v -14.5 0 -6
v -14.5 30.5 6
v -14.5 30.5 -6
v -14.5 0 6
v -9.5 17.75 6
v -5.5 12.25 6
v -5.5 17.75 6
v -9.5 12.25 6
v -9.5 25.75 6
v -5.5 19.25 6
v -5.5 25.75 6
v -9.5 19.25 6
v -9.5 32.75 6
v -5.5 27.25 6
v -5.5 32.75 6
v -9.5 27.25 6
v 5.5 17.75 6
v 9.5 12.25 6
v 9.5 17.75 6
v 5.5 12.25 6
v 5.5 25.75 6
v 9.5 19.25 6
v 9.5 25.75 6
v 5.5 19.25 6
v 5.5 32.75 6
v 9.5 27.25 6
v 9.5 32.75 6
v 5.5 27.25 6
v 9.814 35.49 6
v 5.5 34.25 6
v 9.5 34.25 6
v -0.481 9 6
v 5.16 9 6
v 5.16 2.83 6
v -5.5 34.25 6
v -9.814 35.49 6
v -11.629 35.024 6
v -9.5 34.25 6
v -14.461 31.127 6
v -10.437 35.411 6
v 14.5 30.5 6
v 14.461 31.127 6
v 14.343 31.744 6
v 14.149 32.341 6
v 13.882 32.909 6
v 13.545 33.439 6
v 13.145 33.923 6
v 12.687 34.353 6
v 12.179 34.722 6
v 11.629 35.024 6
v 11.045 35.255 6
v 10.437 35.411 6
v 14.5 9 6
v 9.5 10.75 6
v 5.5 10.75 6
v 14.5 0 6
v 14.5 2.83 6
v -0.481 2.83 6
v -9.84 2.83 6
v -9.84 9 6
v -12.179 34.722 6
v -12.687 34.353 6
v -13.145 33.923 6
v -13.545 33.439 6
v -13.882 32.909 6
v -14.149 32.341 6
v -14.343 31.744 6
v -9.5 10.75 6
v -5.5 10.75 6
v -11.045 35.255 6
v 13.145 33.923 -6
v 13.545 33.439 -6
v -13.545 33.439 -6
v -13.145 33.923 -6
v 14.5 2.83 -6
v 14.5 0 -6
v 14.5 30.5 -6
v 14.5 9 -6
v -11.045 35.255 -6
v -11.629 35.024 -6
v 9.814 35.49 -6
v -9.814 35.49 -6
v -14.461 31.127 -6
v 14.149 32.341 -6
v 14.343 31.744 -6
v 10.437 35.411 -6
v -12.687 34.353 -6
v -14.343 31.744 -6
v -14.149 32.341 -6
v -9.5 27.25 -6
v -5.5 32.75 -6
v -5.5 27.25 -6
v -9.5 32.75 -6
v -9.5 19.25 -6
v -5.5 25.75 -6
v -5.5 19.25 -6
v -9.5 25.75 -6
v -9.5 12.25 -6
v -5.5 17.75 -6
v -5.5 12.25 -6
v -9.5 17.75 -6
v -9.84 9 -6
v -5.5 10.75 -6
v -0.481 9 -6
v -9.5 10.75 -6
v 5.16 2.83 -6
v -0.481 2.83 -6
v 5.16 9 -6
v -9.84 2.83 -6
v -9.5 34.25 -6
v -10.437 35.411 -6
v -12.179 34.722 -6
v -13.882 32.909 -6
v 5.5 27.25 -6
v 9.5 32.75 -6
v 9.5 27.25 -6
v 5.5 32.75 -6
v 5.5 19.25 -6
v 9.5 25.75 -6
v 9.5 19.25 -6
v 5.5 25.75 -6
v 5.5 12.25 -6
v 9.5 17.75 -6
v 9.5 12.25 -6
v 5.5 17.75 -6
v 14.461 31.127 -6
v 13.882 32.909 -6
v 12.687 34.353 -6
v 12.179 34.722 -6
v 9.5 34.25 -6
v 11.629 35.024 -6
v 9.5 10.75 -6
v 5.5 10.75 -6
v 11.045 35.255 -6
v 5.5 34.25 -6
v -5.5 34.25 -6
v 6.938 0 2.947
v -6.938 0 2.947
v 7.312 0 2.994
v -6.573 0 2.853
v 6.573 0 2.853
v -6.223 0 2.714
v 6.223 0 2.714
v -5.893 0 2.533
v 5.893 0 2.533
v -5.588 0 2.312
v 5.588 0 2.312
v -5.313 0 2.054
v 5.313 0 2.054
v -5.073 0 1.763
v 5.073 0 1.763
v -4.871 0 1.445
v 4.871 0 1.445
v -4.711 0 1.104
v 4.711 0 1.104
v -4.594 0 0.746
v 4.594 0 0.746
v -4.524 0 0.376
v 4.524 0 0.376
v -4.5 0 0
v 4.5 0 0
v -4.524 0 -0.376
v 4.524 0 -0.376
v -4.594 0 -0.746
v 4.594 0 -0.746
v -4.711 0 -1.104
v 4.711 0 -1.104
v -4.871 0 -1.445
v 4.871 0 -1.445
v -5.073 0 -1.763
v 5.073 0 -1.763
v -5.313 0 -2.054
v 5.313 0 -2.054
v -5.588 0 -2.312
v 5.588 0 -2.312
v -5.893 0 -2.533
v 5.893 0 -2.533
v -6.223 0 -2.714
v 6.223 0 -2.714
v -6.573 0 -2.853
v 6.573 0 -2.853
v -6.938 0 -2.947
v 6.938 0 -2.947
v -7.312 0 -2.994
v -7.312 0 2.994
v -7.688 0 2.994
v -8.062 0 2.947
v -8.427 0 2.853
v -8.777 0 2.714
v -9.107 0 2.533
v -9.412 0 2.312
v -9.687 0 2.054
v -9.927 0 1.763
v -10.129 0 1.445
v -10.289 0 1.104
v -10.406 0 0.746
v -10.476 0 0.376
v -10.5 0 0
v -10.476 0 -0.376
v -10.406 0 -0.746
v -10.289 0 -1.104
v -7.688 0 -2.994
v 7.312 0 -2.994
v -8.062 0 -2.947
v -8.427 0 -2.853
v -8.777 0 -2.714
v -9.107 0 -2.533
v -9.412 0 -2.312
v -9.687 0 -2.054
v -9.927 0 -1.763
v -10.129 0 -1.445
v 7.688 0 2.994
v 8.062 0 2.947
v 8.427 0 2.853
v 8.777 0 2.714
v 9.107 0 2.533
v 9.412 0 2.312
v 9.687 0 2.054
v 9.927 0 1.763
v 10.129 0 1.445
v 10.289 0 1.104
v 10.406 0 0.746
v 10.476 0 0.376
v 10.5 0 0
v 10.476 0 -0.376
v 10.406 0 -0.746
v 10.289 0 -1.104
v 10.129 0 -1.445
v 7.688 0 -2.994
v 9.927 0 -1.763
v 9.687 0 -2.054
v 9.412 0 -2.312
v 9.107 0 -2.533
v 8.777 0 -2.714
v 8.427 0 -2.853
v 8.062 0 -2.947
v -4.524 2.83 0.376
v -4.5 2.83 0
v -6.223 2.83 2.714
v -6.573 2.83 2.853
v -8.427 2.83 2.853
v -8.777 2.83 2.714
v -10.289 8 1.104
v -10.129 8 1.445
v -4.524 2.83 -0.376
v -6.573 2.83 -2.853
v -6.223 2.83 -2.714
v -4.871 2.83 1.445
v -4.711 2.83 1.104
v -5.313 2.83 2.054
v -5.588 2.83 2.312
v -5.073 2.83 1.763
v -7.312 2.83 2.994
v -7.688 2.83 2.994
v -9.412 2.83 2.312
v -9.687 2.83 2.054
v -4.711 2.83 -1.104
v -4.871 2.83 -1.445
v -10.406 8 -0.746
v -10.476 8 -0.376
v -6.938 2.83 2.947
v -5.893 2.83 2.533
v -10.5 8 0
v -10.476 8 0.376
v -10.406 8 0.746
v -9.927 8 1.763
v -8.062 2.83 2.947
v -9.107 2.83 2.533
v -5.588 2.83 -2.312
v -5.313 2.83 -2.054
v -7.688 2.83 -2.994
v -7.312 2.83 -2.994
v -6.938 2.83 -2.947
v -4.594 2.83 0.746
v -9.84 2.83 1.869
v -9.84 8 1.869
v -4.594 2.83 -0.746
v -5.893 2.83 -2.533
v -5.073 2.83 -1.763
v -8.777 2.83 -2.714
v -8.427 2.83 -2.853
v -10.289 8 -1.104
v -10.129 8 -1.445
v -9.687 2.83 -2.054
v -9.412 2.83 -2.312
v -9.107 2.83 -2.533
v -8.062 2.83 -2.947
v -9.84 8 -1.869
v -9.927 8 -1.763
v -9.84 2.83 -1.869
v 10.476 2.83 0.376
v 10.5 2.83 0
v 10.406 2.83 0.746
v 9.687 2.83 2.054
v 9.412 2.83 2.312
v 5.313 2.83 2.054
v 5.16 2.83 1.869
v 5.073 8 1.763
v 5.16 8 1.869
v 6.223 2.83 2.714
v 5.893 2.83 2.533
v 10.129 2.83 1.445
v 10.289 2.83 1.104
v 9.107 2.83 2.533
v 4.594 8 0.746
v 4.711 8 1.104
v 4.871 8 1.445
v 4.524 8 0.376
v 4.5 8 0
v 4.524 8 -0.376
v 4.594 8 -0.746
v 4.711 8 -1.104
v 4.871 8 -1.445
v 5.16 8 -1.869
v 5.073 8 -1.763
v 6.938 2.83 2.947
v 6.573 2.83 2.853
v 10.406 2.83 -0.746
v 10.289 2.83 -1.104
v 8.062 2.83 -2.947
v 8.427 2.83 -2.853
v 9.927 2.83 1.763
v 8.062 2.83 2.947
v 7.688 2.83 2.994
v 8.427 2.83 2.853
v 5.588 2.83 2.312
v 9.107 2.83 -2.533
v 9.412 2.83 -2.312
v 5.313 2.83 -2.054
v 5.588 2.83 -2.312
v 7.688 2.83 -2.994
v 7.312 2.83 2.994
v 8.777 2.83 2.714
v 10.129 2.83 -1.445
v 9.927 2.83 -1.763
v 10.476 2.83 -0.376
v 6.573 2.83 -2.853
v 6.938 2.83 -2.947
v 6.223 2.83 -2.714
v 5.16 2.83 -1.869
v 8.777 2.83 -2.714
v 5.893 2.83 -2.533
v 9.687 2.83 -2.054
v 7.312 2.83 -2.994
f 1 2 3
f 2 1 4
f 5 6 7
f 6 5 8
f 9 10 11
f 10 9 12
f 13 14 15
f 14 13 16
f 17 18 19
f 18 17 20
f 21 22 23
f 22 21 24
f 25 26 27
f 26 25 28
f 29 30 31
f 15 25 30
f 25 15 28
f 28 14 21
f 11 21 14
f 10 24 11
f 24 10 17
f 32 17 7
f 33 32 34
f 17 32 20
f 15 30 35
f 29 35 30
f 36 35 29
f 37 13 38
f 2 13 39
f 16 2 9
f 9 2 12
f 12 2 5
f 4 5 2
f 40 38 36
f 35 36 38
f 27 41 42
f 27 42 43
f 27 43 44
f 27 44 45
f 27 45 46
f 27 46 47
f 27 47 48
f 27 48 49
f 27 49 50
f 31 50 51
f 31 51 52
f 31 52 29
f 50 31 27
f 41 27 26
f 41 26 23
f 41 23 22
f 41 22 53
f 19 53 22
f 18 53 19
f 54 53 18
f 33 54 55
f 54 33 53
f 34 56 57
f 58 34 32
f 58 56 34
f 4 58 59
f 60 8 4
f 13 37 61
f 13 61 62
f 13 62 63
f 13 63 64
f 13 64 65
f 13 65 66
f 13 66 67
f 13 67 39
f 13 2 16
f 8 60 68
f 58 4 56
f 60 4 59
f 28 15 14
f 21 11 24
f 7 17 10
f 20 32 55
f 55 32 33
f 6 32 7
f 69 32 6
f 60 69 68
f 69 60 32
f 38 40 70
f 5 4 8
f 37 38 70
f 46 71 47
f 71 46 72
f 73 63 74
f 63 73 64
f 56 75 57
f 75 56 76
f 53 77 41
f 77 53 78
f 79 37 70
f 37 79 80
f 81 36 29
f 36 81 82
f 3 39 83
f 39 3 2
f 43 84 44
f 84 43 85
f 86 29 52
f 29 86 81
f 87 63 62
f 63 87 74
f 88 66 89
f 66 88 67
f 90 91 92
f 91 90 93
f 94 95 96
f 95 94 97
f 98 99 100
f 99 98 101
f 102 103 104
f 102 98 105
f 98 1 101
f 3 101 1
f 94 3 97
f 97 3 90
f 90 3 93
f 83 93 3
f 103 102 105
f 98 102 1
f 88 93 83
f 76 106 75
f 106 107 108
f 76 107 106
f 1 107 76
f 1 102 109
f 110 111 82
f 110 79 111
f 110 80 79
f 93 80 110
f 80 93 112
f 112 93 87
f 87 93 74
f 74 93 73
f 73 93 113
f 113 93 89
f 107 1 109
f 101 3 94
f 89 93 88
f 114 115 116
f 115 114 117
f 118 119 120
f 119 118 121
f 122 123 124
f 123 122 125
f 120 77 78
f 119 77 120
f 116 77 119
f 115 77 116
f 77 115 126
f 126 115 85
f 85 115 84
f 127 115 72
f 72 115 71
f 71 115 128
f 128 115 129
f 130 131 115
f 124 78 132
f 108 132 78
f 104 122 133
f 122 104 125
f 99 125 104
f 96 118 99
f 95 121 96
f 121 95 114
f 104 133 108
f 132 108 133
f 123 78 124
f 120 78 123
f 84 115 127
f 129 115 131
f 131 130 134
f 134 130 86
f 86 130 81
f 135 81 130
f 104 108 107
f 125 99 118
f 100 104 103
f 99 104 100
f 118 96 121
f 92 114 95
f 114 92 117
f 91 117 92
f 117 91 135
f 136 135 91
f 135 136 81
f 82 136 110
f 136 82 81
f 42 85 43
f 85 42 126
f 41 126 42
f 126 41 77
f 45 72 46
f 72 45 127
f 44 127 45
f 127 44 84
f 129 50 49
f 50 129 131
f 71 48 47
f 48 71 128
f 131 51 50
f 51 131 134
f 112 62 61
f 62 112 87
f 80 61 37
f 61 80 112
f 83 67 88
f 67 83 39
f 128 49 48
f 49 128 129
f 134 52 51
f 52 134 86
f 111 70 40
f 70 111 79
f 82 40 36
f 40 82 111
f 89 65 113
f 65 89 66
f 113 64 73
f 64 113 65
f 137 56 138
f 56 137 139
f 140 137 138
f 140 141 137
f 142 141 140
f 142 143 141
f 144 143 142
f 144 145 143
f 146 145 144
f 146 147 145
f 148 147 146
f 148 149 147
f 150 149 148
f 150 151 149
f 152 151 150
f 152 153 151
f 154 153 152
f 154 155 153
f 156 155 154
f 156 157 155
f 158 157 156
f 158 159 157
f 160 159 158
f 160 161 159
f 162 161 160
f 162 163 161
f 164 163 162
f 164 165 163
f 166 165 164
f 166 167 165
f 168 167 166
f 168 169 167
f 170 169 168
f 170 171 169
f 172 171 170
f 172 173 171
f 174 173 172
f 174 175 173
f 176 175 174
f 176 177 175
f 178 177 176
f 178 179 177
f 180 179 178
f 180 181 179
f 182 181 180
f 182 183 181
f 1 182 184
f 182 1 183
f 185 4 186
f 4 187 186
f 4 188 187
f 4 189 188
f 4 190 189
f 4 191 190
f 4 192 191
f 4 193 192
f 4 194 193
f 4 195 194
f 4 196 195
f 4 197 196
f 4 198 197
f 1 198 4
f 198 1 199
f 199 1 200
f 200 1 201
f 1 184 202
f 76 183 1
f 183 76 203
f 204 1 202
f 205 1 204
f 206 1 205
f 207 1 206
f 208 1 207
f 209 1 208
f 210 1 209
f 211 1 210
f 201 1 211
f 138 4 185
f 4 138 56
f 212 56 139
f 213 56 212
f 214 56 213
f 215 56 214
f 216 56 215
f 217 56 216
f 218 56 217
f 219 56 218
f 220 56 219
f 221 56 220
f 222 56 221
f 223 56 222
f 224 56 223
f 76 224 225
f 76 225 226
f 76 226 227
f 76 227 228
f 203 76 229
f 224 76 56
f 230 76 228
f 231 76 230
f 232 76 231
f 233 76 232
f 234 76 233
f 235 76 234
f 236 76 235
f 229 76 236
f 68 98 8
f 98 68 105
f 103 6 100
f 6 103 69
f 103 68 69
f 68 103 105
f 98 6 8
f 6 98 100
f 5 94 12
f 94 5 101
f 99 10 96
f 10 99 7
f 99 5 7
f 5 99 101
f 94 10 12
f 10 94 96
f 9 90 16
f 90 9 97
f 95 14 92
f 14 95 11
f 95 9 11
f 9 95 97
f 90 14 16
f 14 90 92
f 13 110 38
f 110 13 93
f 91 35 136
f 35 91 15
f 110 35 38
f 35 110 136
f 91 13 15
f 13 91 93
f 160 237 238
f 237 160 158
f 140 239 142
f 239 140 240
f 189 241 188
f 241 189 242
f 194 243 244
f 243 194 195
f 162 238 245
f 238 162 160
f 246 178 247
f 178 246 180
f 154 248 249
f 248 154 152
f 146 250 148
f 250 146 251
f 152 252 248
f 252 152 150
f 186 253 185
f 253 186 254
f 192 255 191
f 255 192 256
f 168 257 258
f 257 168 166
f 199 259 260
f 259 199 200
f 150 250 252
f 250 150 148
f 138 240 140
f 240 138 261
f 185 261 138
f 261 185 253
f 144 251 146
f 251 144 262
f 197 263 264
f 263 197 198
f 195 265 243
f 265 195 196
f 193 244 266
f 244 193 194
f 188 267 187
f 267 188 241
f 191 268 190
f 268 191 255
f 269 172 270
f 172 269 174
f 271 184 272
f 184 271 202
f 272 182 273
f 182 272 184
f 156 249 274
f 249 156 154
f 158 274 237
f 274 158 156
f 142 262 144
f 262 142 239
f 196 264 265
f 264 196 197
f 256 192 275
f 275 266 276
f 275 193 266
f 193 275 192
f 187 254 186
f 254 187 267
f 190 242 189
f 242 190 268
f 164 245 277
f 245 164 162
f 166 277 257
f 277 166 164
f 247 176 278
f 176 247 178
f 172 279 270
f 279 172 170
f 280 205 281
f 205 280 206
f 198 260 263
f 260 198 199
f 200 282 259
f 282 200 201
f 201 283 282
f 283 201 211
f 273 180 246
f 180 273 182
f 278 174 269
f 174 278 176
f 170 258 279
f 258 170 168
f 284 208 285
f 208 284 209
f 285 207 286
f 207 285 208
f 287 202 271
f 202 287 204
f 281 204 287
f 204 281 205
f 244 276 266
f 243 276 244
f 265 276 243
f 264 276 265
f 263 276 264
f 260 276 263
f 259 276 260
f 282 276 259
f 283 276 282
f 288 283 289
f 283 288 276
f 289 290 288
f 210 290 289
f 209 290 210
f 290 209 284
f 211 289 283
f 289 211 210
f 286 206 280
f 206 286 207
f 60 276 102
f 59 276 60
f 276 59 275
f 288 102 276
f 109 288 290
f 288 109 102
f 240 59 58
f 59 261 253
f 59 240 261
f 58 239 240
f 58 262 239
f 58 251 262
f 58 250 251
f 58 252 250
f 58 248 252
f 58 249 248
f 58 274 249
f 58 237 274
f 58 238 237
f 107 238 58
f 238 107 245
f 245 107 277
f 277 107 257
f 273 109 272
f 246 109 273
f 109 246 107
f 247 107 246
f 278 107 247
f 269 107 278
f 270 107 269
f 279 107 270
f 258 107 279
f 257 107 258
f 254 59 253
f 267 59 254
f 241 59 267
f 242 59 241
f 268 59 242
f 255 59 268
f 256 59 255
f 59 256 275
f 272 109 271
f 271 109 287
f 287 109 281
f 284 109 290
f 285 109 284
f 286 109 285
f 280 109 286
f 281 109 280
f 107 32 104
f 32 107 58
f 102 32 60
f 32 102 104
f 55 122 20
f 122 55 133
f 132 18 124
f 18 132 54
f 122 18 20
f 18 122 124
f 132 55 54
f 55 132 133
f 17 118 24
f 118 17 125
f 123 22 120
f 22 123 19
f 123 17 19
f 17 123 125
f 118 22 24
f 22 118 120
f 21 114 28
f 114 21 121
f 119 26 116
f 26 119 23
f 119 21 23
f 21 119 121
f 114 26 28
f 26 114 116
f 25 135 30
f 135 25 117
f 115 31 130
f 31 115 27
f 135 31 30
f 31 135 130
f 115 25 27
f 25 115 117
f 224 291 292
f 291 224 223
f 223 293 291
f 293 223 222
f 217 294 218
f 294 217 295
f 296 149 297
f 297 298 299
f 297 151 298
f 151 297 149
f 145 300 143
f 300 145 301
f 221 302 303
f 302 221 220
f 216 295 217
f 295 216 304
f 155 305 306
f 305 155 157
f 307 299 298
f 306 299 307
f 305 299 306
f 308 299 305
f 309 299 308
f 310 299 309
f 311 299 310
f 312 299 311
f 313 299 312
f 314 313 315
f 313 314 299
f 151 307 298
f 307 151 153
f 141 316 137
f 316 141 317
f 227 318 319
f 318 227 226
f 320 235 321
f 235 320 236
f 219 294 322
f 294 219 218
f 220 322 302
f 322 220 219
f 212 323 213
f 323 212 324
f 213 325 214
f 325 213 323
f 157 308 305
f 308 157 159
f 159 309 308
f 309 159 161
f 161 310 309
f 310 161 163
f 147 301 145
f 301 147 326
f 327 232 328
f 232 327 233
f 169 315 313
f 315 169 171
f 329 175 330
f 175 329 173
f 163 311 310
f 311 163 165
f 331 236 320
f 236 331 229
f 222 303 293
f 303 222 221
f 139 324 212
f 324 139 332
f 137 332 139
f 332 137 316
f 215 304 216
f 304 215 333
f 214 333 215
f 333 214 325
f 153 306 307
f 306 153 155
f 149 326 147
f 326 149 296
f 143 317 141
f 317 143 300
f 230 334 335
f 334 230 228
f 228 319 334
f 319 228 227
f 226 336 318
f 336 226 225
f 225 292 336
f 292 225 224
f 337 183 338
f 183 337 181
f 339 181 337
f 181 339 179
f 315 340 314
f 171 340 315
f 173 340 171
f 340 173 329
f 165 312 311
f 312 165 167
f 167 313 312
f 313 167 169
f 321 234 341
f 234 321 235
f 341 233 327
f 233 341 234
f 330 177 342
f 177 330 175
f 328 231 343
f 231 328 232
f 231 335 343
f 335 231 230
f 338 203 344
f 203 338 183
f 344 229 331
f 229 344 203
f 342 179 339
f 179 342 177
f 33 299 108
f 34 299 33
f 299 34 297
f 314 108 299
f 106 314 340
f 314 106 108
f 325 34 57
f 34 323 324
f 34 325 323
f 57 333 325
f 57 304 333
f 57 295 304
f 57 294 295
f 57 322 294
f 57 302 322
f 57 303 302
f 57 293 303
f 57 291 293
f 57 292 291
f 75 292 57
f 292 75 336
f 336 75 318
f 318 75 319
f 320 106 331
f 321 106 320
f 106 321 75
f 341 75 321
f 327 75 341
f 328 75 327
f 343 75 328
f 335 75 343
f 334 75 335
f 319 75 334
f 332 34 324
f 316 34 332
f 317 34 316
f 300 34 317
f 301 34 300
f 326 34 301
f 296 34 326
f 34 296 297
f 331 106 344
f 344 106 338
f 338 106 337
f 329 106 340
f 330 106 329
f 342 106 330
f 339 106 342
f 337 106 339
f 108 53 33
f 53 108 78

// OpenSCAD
$fn = 50;


difference() {
	union() {
		translate(v = [0, 21.0000000000, -6.0000000000]) {
			rotate(a = [0, 0, 0]) {
				hull() {
					translate(v = [-9.5000000000, 9.5000000000, 0]) {
						rotate(a = [0, 0, 0]) {
							translate(v = [0, 0, 0]) {
								rotate(a = [0, 0, 0]) {
									cylinder(h = 12, r = 5);
								}
							}
						}
					}
					translate(v = [9.5000000000, 9.5000000000, 0]) {
						rotate(a = [0, 0, 0]) {
							translate(v = [0, 0, 0]) {
								rotate(a = [0, 0, 0]) {
									cylinder(h = 12, r = 5);
								}
							}
						}
					}
					translate(v = [-9.5000000000, -9.5000000000, 0]) {
						rotate(a = [0, 0, 0]) {
							translate(v = [0, 0, 0]) {
								rotate(a = [0, 0, 0]) {
									cylinder(h = 12, r = 5);
								}
							}
						}
					}
					translate(v = [9.5000000000, -9.5000000000, 0]) {
						rotate(a = [0, 0, 0]) {
							translate(v = [0, 0, 0]) {
								rotate(a = [0, 0, 0]) {
									cylinder(h = 12, r = 5);
								}
							}
						}
					}
				}
			}
		}
		translate(v = [-14.5000000000, 0, -6.0000000000]) {
			rotate(a = [0, 0, 0]) {
				cube(size = [29, 13.5000000000, 12]);
			}
		}
	}
	union() {
		translate(v = [-9.5000000000, 10.7500000000, -50]) {
			rotate(a = [0, 0, 0]) {
				cube(size = [4, 1.5000000000, 100]);
			}
		}
		translate(v = [-9.5000000000, 17.7500000000, -50]) {
			rotate(a = [0, 0, 0]) {
				cube(size = [4, 1.5000000000, 100]);
			}
		}
		translate(v = [-9.5000000000, 25.7500000000, -50]) {
			rotate(a = [0, 0, 0]) {
				cube(size = [4, 1.5000000000, 100]);
			}
		}
		translate(v = [-9.5000000000, 32.7500000000, -50]) {
			rotate(a = [0, 0, 0]) {
				cube(size = [4, 1.5000000000, 100]);
			}
		}
		translate(v = [-7.5000000000, 8, 0]) {
			rotate(a = [90, 0, 0]) {
				cylinder(h = 8, r = 3.0000000000);
			}
		}
		translate(v = [-9.8396880416, 9, -25]) {
			rotate(a = [90, 0, 0]) {
				cube(size = [9.3587521664, 100, 6.1700000000]);
			}
		}
		translate(v = [5.5000000000, 10.7500000000, -50]) {
			rotate(a = [0, 0, 0]) {
				cube(size = [4, 1.5000000000, 100]);
			}
		}
		translate(v = [5.5000000000, 17.7500000000, -50]) {
			rotate(a = [0, 0, 0]) {
				cube(size = [4, 1.5000000000, 100]);
			}
		}
		translate(v = [5.5000000000, 25.7500000000, -50]) {
			rotate(a = [0, 0, 0]) {
				cube(size = [4, 1.5000000000, 100]);
			}
		}
		translate(v = [5.5000000000, 32.7500000000, -50]) {
			rotate(a = [0, 0, 0]) {
				cube(size = [4, 1.5000000000, 100]);
			}
		}
		translate(v = [7.5000000000, 8, 0]) {
			rotate(a = [90, 0, 0]) {
				cylinder(h = 8, r = 3.0000000000);
			}
		}
		translate(v = [5.1603119584, 9, -25]) {
			rotate(a = [90, 0, 0]) {
				cube(size = [9.3587521664, 100, 6.1700000000]);
			}
		}
	}
}
